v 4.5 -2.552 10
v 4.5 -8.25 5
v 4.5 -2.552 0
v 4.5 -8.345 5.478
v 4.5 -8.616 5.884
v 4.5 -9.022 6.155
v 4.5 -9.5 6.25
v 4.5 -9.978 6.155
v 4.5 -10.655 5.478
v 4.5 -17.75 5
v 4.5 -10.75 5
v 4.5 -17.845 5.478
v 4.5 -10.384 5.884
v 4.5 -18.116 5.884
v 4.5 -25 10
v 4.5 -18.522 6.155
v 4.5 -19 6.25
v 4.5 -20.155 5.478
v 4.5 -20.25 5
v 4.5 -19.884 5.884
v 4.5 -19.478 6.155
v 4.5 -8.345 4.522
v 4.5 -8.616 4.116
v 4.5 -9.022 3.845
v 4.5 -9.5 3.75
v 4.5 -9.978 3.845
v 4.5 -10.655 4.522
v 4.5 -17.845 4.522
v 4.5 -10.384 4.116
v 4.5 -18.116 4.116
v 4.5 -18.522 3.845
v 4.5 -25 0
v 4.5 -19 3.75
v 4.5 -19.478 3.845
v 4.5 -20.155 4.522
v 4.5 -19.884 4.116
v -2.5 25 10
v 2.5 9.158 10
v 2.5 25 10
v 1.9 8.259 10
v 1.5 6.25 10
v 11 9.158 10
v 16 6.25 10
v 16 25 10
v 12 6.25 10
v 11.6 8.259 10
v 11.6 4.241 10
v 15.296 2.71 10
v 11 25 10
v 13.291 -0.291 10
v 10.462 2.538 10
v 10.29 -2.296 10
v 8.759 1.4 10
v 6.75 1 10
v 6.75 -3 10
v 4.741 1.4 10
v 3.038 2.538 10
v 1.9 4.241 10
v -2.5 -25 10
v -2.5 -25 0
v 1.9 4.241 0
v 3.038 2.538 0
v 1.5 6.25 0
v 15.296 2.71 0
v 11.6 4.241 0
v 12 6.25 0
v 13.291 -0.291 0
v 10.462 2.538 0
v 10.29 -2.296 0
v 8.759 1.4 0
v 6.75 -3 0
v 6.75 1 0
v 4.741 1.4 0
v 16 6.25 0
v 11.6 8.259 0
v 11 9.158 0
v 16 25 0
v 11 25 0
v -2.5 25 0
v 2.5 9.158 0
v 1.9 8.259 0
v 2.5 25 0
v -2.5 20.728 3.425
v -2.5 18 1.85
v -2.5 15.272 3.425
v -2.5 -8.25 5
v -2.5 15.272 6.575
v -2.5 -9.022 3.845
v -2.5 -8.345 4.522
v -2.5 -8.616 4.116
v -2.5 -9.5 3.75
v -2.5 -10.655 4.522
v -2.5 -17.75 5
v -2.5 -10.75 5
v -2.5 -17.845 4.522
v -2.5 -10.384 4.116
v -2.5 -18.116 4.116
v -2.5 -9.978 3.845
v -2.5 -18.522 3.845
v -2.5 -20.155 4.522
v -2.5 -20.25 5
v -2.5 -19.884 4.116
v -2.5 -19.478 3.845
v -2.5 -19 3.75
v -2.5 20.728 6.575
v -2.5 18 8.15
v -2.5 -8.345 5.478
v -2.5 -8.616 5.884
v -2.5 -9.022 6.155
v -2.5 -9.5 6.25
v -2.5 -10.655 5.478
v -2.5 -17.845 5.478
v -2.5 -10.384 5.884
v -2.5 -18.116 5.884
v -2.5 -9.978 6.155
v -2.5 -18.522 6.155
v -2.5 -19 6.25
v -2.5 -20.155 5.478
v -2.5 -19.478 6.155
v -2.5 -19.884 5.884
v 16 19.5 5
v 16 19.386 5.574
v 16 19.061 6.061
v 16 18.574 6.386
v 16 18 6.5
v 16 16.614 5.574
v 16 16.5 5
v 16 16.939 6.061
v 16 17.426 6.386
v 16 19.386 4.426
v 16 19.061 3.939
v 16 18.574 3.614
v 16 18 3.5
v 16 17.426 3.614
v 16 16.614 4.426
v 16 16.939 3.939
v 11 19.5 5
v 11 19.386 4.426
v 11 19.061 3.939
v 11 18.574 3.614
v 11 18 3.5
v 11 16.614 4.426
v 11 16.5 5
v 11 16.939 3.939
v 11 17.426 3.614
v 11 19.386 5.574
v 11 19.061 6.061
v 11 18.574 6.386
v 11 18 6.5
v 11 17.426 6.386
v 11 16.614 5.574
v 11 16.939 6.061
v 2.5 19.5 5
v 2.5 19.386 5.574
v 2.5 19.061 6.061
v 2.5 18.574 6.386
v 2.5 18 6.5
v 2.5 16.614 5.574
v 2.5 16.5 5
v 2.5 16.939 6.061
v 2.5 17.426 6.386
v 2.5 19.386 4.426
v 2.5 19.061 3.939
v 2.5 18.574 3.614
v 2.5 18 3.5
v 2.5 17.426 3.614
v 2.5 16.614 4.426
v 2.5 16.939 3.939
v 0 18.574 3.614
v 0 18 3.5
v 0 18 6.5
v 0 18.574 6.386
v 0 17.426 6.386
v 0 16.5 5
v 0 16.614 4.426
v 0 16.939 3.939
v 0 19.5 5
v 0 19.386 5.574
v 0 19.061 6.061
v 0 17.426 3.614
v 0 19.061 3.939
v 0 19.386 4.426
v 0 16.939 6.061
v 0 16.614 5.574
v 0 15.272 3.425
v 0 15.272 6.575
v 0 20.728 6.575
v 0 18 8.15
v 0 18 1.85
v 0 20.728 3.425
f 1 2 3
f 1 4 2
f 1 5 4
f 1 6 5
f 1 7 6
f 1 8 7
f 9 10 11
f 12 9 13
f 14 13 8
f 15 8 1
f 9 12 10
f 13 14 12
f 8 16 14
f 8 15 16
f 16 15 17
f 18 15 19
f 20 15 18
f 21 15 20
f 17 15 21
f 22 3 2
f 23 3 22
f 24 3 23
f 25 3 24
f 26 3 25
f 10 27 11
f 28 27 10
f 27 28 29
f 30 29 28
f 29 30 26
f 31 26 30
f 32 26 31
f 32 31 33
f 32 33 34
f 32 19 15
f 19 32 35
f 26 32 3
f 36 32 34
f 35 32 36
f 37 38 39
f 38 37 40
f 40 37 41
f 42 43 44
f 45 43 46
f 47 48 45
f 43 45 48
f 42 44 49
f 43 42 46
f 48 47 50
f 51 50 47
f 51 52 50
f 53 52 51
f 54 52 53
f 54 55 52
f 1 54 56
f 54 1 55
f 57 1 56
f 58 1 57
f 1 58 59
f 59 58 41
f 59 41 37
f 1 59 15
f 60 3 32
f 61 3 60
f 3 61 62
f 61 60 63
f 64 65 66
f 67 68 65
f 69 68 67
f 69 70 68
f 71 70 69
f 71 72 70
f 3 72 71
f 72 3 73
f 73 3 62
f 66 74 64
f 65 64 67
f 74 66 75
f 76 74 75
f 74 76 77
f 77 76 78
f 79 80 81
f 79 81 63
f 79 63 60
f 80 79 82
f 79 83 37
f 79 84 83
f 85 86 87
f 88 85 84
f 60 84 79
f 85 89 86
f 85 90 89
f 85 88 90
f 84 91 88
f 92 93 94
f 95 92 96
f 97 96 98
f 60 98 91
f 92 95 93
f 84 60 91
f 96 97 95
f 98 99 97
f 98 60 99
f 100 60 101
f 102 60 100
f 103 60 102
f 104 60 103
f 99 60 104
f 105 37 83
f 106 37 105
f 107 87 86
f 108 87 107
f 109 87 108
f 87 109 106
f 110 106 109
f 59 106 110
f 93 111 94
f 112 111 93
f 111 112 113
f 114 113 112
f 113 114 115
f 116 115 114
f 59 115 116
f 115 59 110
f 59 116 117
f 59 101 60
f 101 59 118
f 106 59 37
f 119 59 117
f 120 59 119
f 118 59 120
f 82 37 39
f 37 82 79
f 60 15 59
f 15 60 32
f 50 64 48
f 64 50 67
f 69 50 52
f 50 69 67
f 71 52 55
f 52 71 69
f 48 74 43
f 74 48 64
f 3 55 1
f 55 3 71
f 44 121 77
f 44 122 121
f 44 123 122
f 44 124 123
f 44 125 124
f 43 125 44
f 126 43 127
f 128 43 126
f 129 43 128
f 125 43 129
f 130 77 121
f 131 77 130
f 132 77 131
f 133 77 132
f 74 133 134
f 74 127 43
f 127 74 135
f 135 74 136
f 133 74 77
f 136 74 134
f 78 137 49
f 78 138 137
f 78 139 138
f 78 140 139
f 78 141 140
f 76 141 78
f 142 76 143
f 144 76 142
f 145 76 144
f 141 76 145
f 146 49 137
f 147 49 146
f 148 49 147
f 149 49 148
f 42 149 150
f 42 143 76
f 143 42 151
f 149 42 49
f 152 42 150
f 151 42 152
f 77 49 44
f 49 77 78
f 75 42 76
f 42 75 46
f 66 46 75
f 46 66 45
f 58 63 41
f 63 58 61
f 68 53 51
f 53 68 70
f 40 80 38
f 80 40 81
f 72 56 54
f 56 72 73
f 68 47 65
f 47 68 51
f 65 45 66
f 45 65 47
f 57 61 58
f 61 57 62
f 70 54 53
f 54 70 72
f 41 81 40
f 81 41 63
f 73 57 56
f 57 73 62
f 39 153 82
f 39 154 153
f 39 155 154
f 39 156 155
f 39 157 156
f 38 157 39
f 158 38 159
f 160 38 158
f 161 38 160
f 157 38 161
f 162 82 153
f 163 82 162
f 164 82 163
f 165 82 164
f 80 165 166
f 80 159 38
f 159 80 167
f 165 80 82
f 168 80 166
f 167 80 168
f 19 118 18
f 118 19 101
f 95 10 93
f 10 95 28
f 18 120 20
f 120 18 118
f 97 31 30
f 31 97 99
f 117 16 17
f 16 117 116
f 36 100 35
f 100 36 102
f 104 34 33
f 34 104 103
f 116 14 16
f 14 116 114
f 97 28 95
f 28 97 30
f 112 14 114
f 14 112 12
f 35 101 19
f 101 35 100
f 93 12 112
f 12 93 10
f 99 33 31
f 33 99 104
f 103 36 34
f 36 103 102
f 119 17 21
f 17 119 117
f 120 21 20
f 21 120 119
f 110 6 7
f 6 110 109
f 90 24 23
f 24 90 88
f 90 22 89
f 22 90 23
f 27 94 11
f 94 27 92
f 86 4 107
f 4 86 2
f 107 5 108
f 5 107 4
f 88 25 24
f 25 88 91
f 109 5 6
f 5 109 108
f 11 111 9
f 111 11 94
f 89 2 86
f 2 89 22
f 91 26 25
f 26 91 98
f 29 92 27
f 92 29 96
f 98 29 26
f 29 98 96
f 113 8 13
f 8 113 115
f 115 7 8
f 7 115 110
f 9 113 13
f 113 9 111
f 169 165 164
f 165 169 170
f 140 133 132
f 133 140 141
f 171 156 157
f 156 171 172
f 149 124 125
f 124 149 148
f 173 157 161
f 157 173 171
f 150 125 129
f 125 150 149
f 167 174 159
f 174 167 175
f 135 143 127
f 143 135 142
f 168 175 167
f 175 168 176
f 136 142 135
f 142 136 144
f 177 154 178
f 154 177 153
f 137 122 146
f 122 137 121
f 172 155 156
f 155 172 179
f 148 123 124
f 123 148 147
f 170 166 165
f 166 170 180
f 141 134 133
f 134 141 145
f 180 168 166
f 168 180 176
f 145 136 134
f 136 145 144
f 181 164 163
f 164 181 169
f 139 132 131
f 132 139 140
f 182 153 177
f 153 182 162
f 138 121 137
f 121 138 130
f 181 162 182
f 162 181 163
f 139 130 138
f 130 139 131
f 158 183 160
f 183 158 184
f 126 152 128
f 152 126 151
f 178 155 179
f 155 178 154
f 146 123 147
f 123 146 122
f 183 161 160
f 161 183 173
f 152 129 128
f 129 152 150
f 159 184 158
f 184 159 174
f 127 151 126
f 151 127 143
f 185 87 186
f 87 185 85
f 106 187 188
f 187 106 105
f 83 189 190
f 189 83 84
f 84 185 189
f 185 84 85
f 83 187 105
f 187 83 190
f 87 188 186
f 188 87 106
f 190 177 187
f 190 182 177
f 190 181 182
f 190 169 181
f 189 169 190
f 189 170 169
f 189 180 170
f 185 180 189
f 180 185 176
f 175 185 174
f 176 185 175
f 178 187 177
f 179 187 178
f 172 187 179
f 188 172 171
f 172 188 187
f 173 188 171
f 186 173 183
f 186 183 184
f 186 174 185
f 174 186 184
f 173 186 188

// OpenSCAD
l=50;
w=5;
h=10;
rod_dia=10.5;
screw_dia=3;
limit_hole_dist=9.5;
limit_dia=2.5;

fn=16;

difference() {
    union() {
        translate([-w/2, -l/2, 0]) cube([w+2,l,h]);
        translate([w/2+rod_dia/2-1, -l/2+22+rod_dia/2+4, h/2]) cylinder(h=h, d=rod_dia+8, center=true, $fn=fn);
        translate([w/2+8.5, -l/2+22+rod_dia/2+4, 0]) cube([w,l-22-rod_dia/2-4,h]);
    }
        translate([w/2+rod_dia/2-1, -l/2+22+rod_dia/2+4, h/2]) cylinder(h=h+2, d=rod_dia, center=true, $fn=fn);
        translate([w/2, -l/2+22+rod_dia/2+4, -1]) cube([8.5,l-22-rod_dia/2-4,h+2]);
    translate([0, -l/2+6, h/2]) rotate([0,90,0]) cylinder(h=w+2+3, d=limit_dia, center=true, $fn=fn);
    translate([0, -l/2+6+limit_hole_dist, h/2]) rotate([0,90,0]) cylinder(h=w+2+3, d=limit_dia, center=true, $fn=fn);
    translate([6, l/2-7, h/2]) rotate([0,90,0]) cylinder(h=w+w+10+2, d=screw_dia, center=true, $fn=fn);
    translate([-w/2, l/2-7, h/2]) rotate([0,90,0]) cylinder(h=w, d=6.3, center=true, $fn=6);
}
